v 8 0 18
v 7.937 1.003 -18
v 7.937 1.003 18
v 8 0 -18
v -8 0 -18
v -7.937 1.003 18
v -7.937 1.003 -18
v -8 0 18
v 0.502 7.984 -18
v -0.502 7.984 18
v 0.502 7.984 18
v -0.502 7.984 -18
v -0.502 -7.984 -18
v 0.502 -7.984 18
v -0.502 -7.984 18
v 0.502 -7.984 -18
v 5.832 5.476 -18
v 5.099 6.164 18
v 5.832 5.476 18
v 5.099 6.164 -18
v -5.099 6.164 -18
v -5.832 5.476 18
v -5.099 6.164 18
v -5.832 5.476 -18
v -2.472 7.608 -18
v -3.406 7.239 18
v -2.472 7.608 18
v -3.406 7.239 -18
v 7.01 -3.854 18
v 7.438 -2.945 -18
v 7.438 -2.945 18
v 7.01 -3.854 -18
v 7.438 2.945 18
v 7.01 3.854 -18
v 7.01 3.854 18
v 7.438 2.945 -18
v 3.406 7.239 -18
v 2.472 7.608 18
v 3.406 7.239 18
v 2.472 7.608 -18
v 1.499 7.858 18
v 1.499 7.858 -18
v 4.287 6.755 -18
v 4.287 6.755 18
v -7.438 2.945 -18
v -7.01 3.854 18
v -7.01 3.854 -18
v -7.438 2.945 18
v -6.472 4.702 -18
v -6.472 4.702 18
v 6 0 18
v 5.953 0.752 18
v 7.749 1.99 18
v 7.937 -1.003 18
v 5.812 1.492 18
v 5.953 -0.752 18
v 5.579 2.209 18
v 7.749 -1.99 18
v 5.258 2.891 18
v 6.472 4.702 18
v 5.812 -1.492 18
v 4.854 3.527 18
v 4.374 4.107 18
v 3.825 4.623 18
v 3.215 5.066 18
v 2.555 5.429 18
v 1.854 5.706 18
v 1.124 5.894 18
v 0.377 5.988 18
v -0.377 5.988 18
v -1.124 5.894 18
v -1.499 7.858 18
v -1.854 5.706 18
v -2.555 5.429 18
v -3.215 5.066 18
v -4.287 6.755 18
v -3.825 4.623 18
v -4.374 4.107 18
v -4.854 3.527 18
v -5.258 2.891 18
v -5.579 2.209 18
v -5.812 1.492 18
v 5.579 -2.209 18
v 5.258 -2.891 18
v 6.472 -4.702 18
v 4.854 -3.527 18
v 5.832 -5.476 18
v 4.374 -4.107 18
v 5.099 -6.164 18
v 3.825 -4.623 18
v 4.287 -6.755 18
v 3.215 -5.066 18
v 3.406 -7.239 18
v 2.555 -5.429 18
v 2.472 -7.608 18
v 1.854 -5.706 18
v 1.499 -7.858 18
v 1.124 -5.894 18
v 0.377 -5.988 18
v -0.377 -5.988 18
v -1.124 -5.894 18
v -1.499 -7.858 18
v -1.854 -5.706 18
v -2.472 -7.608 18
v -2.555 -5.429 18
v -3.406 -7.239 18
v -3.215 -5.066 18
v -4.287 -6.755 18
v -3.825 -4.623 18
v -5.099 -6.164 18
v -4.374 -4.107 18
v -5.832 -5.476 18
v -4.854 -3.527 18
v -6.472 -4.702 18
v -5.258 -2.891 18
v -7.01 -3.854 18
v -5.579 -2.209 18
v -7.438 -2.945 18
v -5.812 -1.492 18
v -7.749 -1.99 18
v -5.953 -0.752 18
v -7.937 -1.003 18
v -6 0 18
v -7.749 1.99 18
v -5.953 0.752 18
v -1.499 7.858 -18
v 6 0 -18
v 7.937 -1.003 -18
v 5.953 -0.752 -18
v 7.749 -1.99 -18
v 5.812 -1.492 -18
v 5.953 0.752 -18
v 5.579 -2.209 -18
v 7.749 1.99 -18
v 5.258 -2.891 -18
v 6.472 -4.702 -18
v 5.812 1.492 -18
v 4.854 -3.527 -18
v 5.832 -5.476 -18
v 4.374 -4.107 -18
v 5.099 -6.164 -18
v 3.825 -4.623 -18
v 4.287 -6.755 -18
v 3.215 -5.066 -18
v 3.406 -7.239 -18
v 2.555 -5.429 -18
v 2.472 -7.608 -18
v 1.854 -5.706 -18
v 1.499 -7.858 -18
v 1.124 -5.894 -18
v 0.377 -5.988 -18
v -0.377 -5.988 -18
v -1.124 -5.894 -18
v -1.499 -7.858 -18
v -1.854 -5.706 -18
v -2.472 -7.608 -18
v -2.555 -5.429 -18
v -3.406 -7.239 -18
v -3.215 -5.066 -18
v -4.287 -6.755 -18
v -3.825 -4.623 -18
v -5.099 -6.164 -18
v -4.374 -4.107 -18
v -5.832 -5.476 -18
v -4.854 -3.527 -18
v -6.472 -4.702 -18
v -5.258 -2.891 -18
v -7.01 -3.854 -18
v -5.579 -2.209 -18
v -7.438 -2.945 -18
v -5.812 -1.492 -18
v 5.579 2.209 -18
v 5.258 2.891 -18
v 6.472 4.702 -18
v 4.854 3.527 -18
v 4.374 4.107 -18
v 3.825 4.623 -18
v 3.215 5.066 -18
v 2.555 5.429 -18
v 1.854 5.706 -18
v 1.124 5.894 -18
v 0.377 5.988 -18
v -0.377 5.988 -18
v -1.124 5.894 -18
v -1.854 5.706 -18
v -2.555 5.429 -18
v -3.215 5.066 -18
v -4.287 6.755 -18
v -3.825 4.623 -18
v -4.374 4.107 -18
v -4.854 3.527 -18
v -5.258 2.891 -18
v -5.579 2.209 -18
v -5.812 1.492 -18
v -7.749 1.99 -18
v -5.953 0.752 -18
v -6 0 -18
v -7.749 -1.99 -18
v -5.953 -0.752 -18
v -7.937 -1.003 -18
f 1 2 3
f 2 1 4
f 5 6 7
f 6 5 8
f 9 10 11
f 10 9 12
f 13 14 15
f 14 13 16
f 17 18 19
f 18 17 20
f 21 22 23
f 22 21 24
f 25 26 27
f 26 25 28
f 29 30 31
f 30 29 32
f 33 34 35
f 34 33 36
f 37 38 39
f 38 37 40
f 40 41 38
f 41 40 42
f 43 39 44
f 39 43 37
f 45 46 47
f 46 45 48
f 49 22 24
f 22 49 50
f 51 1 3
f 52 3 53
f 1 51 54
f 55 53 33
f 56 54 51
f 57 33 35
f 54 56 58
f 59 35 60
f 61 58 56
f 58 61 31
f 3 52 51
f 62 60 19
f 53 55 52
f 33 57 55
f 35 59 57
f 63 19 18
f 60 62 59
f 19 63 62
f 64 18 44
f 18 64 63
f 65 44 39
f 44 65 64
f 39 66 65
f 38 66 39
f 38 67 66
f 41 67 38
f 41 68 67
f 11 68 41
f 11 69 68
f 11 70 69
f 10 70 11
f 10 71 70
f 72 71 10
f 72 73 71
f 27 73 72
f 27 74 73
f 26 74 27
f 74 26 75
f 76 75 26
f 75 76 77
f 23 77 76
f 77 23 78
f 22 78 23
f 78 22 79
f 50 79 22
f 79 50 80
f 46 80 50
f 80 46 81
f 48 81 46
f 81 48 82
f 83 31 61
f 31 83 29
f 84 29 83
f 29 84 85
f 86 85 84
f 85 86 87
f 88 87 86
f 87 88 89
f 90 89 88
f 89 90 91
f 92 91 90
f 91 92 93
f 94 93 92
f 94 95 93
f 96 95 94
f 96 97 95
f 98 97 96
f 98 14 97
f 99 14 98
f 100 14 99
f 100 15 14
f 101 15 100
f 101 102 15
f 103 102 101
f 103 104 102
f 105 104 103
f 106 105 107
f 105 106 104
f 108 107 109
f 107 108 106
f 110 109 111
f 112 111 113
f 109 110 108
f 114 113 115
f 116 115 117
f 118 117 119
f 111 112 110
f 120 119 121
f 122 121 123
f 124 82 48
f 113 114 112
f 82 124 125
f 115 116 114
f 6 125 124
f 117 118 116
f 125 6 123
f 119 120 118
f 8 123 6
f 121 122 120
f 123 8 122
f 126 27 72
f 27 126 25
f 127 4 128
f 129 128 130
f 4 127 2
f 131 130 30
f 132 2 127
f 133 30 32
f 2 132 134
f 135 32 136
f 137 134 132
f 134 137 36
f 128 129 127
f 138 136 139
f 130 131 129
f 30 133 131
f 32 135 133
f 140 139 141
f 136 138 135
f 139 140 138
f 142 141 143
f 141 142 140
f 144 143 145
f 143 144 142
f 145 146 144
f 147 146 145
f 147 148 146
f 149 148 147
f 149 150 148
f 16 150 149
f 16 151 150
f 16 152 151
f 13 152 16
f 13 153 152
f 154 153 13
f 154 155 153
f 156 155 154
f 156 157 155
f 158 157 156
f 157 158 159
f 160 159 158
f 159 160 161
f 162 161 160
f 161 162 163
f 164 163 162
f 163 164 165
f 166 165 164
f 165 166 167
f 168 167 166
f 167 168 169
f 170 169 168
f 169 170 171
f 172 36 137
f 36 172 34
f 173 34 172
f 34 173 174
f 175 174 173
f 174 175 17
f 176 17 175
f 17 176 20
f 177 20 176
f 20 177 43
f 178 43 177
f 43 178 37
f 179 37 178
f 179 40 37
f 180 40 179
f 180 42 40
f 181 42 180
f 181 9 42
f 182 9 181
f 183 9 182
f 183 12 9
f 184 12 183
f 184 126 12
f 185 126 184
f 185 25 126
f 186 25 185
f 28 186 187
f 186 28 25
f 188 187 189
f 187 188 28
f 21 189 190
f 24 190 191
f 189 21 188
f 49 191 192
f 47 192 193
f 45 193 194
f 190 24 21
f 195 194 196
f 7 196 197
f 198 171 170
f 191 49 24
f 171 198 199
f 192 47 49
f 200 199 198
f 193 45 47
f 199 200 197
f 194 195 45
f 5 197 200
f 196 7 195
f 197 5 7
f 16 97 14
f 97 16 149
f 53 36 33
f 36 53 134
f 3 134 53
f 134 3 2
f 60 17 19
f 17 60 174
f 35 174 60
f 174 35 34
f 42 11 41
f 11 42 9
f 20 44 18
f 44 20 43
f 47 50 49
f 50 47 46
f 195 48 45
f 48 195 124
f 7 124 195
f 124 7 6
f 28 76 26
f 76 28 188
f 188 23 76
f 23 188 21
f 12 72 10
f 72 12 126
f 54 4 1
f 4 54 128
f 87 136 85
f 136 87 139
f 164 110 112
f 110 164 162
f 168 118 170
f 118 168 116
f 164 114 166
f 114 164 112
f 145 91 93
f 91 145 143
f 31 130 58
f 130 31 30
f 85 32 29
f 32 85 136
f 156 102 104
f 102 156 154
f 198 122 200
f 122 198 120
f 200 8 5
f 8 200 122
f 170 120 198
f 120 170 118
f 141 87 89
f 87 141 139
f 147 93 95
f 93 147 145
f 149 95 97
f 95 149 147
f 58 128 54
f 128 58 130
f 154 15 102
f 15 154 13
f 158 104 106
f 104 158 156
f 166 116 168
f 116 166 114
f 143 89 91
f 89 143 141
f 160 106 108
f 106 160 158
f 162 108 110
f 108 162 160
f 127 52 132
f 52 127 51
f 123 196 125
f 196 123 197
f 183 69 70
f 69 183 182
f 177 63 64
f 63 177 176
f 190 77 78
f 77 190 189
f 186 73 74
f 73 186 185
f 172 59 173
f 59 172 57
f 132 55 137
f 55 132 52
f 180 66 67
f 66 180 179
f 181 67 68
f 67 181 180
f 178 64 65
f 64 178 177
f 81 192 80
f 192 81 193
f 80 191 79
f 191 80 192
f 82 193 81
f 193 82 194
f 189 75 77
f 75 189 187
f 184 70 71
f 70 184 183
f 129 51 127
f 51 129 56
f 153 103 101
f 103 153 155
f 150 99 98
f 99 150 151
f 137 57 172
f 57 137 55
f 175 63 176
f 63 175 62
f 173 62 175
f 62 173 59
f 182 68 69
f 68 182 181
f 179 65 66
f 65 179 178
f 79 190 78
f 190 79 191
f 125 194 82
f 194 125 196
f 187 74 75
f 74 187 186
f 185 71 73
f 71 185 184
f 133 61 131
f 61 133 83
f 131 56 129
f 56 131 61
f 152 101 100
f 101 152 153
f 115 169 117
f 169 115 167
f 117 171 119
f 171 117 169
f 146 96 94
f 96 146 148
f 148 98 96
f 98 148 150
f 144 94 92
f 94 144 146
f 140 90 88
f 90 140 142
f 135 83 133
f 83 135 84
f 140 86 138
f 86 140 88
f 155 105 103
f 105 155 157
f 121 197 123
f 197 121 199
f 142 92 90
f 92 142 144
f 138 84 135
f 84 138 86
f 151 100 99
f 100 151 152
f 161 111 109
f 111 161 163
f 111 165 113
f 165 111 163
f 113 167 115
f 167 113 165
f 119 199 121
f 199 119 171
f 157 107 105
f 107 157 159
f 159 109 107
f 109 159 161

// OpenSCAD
$fn = 50;


difference() {
	union() {
		translate(v = [0, 0, -18.0000000000]) {
			cylinder(h = 36, r = 8.0000000000);
		}
	}
	union() {
		translate(v = [0, 0, -100.0000000000]) {
			cylinder(h = 200, r = 6);
		}
	}
}
